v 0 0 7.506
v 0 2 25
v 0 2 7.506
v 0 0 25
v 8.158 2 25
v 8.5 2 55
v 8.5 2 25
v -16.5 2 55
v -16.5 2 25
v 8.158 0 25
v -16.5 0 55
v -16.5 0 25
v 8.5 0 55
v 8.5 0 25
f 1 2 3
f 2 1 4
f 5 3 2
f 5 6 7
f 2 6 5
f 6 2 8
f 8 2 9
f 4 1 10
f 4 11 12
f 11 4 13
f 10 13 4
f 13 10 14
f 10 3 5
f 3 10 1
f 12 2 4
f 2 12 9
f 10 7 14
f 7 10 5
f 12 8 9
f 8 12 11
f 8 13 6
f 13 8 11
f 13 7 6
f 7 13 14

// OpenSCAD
$fn = 200;

// blender

translate([-16.5,0,25]){
    cube([25,2,30]);
}
difference(){
    difference(){
        translate([0,0,0]){
            cube([48,2,72]);
        }
        translate([-3.5,-1,0]){
            rotate([0,25,0]){
                cube([50,4,150]);
            }
        }
    }
    difference(){
    translate([-0.01,-1,25]){
        cube([48,4,72]);
    }
    translate([9,-1,25]){
        rotate([0,25,0]){
            cube([40,4,150]);
        }
    }
}
}
